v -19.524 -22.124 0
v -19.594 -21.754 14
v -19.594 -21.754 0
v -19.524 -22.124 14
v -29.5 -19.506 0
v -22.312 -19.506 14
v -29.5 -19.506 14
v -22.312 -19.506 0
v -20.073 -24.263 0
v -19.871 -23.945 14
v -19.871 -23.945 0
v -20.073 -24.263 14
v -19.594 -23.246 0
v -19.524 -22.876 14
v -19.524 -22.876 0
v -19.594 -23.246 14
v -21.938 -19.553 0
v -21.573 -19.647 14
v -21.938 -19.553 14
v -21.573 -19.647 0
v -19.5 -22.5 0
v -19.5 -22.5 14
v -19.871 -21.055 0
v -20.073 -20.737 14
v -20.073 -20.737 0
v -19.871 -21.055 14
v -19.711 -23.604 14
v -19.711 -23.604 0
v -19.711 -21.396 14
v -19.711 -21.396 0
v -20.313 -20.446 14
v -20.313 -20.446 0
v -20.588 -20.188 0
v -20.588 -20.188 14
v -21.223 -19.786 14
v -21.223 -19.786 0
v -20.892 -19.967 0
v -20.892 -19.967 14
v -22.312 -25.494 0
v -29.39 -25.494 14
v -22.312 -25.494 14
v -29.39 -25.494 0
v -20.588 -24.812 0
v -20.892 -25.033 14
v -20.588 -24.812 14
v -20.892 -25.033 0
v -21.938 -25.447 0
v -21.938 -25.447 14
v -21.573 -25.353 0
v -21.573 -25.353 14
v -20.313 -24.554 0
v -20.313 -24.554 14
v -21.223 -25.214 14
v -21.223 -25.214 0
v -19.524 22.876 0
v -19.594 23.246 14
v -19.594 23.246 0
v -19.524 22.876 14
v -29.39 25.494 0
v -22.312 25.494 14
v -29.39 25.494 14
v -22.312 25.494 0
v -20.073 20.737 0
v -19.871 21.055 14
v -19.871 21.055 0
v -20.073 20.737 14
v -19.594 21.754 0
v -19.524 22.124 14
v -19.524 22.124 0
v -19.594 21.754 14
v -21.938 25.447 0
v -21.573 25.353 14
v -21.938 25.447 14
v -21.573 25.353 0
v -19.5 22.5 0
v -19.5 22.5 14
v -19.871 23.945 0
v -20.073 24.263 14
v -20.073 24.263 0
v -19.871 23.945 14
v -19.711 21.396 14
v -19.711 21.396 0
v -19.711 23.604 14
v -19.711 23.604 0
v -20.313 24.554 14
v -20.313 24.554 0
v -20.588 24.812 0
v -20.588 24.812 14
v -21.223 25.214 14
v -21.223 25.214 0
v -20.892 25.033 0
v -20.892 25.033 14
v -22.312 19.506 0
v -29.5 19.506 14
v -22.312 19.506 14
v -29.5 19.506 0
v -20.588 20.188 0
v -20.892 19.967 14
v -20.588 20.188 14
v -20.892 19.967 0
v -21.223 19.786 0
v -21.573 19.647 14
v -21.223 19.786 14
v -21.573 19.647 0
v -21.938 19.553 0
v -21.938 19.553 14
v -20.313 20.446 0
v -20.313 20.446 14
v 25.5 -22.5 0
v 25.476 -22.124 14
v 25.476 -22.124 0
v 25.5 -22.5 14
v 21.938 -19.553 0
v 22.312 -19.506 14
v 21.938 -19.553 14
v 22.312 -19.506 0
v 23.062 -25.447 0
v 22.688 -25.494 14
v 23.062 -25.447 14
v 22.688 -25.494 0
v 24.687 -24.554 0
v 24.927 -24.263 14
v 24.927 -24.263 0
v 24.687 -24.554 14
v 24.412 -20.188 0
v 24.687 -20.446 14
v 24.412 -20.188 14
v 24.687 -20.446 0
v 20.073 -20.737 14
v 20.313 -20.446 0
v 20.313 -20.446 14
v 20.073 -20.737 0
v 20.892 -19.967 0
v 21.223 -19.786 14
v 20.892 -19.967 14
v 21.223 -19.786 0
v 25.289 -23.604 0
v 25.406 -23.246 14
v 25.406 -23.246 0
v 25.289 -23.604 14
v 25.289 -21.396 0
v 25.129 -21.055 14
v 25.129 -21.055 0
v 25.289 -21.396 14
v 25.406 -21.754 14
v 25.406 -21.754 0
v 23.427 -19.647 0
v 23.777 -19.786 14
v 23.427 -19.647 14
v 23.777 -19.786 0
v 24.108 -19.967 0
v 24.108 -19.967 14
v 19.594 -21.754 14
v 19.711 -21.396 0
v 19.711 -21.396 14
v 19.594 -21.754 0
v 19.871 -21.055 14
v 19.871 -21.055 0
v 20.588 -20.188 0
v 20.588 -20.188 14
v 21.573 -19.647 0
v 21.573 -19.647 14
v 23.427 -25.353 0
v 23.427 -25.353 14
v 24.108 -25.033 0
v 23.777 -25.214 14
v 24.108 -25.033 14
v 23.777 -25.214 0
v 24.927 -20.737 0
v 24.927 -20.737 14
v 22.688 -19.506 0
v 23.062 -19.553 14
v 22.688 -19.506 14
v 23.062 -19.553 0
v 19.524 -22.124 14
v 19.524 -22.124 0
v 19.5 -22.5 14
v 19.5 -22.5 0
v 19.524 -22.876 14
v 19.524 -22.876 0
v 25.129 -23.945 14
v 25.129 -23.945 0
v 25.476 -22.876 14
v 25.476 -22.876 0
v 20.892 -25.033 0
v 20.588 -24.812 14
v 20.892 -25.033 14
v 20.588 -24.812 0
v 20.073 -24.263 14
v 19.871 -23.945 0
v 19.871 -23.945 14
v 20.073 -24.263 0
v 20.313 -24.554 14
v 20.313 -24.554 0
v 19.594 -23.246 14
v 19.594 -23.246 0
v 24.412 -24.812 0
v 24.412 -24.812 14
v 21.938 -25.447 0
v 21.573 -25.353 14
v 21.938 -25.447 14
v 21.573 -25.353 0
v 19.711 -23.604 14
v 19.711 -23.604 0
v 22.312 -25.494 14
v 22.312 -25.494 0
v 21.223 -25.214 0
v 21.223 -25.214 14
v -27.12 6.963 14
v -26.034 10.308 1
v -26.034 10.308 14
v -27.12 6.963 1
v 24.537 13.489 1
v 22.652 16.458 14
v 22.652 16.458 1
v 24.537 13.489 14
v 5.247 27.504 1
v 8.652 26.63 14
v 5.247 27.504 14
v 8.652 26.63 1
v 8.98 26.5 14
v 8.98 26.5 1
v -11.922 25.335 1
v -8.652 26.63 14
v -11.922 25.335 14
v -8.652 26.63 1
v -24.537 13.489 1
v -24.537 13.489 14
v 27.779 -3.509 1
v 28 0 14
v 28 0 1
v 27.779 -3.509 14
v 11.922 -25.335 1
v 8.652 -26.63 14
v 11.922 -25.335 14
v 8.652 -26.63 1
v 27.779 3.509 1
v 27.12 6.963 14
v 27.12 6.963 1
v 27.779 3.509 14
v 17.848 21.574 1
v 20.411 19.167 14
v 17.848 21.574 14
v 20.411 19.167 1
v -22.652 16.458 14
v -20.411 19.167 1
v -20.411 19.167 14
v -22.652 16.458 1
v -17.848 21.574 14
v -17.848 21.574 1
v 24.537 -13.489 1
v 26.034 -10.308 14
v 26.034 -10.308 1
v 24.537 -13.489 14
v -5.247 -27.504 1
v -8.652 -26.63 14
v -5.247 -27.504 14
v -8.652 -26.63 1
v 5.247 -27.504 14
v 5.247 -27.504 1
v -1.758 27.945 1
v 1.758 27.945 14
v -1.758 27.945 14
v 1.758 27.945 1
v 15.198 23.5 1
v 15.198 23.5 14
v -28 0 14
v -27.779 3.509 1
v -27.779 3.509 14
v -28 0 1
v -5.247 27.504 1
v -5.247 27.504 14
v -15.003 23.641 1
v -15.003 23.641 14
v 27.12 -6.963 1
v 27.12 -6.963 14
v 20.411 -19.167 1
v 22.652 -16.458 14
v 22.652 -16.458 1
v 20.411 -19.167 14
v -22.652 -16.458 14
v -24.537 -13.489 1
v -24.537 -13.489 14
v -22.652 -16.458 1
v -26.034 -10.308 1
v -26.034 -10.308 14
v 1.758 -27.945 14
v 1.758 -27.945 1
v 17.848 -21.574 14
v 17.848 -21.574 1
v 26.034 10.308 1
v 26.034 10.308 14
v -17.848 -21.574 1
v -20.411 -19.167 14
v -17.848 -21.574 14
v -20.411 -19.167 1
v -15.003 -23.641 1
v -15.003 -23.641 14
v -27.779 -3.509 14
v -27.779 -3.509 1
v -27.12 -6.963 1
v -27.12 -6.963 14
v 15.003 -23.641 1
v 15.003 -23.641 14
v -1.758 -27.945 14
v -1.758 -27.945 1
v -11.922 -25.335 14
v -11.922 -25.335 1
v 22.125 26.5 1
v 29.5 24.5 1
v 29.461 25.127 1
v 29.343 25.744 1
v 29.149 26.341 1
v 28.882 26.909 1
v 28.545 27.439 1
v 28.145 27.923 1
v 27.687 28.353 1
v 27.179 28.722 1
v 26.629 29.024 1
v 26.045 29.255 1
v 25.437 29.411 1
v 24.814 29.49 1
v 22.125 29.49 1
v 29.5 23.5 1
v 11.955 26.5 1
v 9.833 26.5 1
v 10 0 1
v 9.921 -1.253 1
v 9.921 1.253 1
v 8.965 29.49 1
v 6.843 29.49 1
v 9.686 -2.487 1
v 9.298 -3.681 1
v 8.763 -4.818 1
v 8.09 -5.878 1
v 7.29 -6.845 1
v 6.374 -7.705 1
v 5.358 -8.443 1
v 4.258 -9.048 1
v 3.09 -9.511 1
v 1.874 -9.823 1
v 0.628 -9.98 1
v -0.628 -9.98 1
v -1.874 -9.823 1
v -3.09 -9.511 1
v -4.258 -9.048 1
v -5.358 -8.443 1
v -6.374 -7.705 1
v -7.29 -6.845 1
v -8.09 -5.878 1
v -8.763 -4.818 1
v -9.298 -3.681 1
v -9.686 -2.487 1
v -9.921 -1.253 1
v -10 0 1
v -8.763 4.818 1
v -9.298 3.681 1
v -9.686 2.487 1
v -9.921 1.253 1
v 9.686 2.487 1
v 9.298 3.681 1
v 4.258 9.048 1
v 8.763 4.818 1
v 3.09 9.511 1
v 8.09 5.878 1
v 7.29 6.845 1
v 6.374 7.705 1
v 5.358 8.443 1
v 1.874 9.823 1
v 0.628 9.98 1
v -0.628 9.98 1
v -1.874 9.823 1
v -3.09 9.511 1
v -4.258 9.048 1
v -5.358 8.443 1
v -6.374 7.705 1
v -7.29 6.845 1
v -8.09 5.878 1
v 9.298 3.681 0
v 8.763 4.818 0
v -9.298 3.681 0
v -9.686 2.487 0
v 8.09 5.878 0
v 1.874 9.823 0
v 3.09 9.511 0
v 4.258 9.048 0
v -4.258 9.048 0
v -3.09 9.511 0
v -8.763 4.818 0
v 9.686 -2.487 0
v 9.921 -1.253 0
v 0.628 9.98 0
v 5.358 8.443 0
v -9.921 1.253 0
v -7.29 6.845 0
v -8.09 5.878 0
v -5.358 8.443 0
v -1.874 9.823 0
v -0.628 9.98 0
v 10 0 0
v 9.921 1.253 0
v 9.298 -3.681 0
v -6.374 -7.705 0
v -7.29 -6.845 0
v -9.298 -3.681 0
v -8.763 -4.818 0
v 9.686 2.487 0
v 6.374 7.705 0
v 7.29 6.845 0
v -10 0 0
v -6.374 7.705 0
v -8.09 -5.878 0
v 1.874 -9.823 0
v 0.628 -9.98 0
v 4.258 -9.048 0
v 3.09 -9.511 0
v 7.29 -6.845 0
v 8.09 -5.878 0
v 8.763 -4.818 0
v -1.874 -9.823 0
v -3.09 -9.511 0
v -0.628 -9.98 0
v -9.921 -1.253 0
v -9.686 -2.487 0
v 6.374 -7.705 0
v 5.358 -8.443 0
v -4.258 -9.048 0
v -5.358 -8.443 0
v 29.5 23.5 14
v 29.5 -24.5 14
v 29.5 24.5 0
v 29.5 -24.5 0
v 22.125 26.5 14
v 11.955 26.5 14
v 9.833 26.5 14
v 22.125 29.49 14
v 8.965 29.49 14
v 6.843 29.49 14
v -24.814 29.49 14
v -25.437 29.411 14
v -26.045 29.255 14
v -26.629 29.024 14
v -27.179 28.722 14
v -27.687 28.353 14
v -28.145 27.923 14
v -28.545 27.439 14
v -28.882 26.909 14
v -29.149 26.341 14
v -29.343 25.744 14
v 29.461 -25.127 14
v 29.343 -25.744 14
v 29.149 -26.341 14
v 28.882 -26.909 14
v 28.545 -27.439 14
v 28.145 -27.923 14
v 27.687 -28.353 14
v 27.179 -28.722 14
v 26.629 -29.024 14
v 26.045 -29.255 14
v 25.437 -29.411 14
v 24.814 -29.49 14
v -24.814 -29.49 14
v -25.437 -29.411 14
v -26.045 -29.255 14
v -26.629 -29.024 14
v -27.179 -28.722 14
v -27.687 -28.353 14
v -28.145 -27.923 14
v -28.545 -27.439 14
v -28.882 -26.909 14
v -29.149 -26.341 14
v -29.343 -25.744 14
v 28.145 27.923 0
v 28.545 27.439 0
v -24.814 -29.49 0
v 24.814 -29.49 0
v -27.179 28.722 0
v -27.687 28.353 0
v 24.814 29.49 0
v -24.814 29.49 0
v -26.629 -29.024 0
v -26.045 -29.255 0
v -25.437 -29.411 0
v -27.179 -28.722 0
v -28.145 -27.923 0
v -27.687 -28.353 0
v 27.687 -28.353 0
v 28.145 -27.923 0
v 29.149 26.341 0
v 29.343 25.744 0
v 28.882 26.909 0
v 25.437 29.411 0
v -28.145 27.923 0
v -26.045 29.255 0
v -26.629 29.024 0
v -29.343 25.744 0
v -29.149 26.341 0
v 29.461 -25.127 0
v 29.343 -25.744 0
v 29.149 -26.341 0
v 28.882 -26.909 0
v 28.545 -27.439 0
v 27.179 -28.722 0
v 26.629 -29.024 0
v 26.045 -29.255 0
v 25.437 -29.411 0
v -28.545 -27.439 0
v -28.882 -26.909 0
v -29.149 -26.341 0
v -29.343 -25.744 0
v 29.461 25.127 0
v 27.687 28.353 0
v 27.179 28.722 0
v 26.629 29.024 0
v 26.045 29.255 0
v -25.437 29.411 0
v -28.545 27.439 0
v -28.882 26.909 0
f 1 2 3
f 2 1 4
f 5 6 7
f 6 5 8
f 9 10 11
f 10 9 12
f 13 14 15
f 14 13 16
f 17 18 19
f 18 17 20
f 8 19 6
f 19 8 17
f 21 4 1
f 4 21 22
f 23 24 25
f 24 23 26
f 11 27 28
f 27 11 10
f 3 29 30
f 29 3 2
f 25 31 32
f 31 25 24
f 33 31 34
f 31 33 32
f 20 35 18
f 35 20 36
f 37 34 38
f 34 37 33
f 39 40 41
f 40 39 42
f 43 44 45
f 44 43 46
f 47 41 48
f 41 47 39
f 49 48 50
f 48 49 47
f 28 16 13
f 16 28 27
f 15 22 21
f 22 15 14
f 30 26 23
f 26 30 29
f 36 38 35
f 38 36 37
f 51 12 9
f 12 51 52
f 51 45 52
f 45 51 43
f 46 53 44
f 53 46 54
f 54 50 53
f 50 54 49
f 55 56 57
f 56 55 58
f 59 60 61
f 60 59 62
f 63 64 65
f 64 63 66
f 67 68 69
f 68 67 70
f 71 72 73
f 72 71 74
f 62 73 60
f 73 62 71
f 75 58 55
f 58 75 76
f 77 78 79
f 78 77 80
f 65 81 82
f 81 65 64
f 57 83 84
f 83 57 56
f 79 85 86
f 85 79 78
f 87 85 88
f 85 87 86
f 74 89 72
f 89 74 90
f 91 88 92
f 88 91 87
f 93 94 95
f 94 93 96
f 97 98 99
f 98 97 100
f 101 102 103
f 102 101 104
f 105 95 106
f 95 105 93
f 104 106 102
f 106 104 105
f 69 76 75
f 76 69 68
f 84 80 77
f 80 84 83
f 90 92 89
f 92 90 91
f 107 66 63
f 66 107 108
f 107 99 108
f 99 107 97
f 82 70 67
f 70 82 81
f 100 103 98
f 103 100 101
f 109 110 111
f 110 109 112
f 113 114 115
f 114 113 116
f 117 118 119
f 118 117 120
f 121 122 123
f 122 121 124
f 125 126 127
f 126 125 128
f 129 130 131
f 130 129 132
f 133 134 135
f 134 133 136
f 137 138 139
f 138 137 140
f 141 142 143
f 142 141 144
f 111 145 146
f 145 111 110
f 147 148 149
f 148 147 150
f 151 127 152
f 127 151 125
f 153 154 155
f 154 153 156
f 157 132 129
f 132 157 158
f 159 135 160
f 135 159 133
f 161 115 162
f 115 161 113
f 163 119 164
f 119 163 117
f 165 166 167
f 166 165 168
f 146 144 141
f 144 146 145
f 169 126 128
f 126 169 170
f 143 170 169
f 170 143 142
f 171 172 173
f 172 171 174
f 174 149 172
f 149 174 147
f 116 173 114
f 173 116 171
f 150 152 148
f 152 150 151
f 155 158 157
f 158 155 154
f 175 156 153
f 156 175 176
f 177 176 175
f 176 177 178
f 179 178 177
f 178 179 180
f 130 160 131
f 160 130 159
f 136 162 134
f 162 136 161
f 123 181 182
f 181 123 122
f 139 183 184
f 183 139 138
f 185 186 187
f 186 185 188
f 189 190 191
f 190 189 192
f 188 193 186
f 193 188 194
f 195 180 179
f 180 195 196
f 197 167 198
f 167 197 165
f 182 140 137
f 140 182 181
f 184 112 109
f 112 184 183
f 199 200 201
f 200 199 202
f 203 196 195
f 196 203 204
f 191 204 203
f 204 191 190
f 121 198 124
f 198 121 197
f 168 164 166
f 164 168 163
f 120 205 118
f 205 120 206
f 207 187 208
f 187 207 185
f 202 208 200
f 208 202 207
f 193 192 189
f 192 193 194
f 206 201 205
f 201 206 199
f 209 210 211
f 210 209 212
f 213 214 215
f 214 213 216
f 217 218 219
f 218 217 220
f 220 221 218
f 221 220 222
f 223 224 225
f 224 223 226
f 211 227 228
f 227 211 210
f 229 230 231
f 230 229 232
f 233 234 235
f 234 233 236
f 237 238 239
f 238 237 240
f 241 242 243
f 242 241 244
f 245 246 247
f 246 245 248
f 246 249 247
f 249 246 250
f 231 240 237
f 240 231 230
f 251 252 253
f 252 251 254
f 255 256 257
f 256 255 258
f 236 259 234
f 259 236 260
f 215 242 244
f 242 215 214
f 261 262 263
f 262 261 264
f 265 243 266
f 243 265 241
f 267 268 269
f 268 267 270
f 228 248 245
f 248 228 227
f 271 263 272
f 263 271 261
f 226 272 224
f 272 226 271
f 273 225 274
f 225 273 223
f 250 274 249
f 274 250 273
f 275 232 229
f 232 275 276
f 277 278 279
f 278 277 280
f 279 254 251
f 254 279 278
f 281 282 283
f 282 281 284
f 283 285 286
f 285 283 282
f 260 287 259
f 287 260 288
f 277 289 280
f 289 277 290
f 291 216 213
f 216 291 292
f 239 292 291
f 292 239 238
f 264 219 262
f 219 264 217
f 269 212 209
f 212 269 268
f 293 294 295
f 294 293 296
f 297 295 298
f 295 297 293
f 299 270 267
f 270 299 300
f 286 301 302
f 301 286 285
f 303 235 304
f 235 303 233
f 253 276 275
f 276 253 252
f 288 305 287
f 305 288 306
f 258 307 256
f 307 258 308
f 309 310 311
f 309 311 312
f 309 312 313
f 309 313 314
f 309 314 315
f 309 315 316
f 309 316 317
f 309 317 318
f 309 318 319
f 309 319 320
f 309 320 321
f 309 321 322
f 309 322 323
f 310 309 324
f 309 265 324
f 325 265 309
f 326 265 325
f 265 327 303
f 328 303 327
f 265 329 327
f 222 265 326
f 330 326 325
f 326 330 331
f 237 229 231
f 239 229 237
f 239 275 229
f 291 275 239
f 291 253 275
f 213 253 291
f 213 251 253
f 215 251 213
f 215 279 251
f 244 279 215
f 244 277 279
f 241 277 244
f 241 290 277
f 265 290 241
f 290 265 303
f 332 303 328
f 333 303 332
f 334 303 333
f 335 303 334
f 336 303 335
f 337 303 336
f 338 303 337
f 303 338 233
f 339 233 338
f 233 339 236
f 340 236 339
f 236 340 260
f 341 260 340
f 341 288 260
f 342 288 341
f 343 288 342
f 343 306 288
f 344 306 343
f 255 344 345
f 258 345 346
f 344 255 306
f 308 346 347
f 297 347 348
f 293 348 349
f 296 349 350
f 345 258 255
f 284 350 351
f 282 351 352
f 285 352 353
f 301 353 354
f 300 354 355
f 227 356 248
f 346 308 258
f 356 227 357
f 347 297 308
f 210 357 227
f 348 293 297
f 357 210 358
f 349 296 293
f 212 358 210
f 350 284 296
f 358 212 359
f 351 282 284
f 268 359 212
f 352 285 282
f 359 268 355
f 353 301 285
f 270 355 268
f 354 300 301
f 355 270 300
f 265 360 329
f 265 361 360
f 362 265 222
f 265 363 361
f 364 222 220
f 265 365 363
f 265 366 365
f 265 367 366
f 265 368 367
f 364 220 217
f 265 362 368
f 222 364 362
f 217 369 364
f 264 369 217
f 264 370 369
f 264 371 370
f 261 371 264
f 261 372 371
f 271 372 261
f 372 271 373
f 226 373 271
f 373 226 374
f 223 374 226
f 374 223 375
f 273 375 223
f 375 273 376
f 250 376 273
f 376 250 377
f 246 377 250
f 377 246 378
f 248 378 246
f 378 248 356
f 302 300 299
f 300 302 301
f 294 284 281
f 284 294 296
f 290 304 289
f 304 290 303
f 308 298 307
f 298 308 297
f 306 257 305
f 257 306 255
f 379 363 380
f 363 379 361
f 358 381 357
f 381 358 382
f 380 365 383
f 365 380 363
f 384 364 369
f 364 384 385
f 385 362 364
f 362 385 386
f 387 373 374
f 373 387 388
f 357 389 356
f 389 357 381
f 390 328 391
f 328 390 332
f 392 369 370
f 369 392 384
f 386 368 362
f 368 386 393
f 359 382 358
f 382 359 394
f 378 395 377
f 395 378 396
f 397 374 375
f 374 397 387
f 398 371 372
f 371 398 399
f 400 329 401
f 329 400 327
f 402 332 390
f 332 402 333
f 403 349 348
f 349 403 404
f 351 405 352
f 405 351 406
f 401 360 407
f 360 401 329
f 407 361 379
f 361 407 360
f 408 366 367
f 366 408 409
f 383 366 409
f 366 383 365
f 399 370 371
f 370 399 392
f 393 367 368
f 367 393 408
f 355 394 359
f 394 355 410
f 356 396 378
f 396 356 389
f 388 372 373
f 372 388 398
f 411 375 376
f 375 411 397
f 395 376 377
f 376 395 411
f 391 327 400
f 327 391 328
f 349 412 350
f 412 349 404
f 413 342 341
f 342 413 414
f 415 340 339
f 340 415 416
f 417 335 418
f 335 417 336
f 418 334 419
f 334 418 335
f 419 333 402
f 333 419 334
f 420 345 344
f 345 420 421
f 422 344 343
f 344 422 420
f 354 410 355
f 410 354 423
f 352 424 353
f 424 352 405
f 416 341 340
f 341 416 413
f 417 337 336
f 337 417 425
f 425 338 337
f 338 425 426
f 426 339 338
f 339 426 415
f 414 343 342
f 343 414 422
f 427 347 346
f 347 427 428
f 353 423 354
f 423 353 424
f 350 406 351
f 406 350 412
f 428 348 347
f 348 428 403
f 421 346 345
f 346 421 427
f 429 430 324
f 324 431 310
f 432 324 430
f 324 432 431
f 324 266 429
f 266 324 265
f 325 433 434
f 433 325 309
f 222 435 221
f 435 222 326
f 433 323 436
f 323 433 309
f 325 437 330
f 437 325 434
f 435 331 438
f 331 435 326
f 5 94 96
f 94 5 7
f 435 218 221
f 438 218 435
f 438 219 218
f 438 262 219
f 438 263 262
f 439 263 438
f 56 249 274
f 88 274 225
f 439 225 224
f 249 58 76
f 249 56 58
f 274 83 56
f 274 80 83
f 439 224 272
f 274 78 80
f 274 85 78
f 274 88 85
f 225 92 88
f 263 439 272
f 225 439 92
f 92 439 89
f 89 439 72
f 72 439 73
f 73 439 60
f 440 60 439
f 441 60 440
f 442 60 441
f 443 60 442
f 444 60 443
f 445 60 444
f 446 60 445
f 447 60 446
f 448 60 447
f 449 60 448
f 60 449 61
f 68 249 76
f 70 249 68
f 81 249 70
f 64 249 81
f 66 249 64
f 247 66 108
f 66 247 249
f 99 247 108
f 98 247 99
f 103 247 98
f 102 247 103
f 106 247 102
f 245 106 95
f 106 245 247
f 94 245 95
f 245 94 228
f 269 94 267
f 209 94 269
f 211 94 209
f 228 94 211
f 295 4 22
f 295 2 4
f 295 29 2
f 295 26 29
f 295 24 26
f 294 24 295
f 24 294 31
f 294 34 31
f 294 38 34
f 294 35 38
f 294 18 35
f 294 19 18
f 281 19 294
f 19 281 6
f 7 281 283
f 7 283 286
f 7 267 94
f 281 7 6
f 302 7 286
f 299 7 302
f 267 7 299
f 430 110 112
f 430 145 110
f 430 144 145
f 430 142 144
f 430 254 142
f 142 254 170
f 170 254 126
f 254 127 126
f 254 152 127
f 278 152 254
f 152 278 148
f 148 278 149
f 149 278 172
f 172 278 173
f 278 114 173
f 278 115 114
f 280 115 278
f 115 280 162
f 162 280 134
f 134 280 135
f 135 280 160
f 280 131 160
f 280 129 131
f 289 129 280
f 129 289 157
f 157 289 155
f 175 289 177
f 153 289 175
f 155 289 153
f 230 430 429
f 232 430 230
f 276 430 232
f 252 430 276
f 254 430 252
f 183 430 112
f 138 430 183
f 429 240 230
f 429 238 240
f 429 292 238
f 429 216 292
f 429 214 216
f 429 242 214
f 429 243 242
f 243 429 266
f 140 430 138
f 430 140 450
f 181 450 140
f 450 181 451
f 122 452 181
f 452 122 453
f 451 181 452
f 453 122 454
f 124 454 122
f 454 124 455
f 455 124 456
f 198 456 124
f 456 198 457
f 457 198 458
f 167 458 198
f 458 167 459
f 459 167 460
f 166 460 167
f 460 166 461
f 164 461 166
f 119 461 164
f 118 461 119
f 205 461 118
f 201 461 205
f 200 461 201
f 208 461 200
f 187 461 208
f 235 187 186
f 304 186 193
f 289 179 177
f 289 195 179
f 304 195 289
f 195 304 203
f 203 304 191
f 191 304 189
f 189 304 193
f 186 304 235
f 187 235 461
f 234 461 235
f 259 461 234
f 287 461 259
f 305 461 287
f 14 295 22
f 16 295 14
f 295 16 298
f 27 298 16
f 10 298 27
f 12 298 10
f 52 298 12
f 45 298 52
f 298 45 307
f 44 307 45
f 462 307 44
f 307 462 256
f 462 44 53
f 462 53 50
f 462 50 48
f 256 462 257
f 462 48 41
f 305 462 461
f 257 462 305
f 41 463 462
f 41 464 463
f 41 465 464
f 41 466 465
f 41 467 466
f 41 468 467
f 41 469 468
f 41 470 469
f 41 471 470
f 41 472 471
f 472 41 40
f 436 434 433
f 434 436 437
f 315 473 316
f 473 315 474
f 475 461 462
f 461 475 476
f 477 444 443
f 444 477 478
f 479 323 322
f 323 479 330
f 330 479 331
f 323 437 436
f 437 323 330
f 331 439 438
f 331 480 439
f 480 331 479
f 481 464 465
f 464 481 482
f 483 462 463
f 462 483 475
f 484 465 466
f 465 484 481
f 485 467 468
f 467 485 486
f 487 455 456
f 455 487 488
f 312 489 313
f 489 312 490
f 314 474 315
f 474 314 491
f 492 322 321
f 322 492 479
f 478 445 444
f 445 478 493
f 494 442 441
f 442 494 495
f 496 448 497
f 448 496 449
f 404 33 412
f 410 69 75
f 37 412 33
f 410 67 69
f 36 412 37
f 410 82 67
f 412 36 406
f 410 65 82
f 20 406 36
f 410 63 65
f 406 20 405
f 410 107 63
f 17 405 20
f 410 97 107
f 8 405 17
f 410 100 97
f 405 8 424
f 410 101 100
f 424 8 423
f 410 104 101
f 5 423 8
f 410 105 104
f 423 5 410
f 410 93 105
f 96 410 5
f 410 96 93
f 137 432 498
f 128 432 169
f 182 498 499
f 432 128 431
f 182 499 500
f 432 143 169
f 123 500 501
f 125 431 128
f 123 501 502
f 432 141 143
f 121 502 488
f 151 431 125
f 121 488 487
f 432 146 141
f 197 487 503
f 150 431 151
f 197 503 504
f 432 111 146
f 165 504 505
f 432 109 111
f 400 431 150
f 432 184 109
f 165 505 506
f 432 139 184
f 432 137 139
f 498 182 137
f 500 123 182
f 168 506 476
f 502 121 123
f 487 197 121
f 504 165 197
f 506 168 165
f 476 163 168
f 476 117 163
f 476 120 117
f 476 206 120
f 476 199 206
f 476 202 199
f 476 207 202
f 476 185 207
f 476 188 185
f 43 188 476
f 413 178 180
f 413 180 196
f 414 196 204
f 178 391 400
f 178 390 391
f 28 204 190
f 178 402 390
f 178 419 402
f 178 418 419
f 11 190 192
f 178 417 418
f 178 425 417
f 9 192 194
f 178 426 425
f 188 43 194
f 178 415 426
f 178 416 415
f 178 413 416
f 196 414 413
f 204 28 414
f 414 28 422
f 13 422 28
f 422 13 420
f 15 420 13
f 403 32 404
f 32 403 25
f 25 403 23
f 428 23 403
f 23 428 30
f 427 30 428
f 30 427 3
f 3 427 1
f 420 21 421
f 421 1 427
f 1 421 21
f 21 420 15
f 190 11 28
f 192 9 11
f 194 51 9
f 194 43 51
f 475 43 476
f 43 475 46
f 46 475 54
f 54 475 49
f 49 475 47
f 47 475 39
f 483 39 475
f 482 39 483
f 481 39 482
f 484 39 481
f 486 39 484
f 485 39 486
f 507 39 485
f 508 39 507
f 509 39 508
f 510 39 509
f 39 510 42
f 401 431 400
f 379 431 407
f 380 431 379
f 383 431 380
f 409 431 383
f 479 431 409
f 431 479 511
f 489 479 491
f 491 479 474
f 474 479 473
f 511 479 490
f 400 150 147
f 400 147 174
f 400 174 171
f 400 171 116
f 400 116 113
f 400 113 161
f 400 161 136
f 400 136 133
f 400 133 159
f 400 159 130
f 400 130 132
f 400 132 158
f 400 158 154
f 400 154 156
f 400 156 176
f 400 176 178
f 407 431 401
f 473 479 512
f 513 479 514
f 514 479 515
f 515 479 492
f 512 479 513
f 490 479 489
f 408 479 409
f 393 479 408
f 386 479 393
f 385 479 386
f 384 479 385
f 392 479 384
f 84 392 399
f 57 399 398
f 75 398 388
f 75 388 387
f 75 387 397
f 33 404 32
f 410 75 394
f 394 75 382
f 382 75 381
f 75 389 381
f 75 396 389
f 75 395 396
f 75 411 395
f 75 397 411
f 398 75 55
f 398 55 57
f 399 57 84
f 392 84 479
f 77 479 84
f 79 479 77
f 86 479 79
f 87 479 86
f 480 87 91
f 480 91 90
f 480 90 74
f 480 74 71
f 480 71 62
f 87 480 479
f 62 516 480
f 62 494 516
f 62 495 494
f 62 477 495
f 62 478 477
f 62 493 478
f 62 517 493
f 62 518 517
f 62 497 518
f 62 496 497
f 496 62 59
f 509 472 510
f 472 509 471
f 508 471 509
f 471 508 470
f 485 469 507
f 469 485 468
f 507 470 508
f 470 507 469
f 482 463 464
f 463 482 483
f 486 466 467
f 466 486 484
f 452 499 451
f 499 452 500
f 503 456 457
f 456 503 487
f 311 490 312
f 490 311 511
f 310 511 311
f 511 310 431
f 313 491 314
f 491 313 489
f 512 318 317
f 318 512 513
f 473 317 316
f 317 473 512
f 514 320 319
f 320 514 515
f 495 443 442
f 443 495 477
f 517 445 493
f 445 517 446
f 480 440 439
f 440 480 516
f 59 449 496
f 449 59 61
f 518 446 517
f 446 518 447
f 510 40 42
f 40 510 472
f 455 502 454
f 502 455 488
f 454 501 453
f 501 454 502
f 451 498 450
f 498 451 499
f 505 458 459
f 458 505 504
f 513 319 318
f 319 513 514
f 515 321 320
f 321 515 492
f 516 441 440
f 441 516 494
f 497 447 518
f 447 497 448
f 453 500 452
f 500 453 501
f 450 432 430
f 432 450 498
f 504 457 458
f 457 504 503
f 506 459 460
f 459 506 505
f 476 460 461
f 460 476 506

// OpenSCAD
$fn = 50;


difference() {
	union() {
		translate(v = [0, 0, 0]) {
			rotate(a = [0, 0, 0]) {
				hull() {
					translate(v = [-24.5000000000, 24.5000000000, 0]) {
						rotate(a = [0, 0, 0]) {
							translate(v = [0, 0, 0]) {
								rotate(a = [0, 0, 0]) {
									cylinder(h = 14, r = 5);
								}
							}
						}
					}
					translate(v = [24.5000000000, 24.5000000000, 0]) {
						rotate(a = [0, 0, 0]) {
							translate(v = [0, 0, 0]) {
								rotate(a = [0, 0, 0]) {
									cylinder(h = 14, r = 5);
								}
							}
						}
					}
					translate(v = [-24.5000000000, -24.5000000000, 0]) {
						rotate(a = [0, 0, 0]) {
							translate(v = [0, 0, 0]) {
								rotate(a = [0, 0, 0]) {
									cylinder(h = 14, r = 5);
								}
							}
						}
					}
					translate(v = [24.5000000000, -24.5000000000, 0]) {
						rotate(a = [0, 0, 0]) {
							translate(v = [0, 0, 0]) {
								rotate(a = [0, 0, 0]) {
									cylinder(h = 14, r = 5);
								}
							}
						}
					}
				}
			}
		}
	}
	union() {
		translate(v = [-30.0000000000, -22.5000000000, -125]) {
			rotate(a = [0, 0, 0]) {
				hull() {
					translate(v = [7.5000000000, 0, 0]) {
						rotate(a = [0, 0, 0]) {
							translate(v = [0, 0, 0]) {
								rotate(a = [0, 0, 0]) {
									cylinder(h = 250, r = 3.0000000000);
								}
							}
						}
					}
					translate(v = [-7.5000000000, 0, 0]) {
						rotate(a = [0, 0, 0]) {
							translate(v = [0, 0, 0]) {
								rotate(a = [0, 0, 0]) {
									cylinder(h = 250, r = 3.0000000000);
								}
							}
						}
					}
				}
			}
		}
		translate(v = [-30.0000000000, 22.5000000000, -125]) {
			rotate(a = [0, 0, 0]) {
				hull() {
					translate(v = [7.5000000000, 0, 0]) {
						rotate(a = [0, 0, 0]) {
							translate(v = [0, 0, 0]) {
								rotate(a = [0, 0, 0]) {
									cylinder(h = 250, r = 3.0000000000);
								}
							}
						}
					}
					translate(v = [-7.5000000000, 0, 0]) {
						rotate(a = [0, 0, 0]) {
							translate(v = [0, 0, 0]) {
								rotate(a = [0, 0, 0]) {
									cylinder(h = 250, r = 3.0000000000);
								}
							}
						}
					}
				}
			}
		}
		translate(v = [22.5000000000, -22.5000000000, -125.0000000000]) {
			rotate(a = [0, 0, 0]) {
				cylinder(h = 250, r = 3.0000000000);
			}
		}
		translate(v = [0, 0, 1.0000000000]) {
			rotate(a = [0, 0, 0]) {
				cylinder(h = 16, r = 28.0000000000);
			}
		}
		translate(v = [0, 0, -7.0000000000]) {
			rotate(a = [0, 0, 0]) {
				cylinder(h = 14, r = 10.0000000000);
			}
		}
		translate(v = [0.0000000000, 23.5000000000, 1]) {
			rotate(a = [0, 0, 0]) {
				cube(size = [29.5000000000, 3, 16]);
			}
		}
		translate(v = [22.1250000000, 23.5000000000, 1]) {
			rotate(a = [0, 0, 0]) {
				cube(size = [7.3750000000, 6, 16]);
			}
		}
		translate(v = [6.0833333333, 30.2500000000, 1]) {
			rotate(a = [0, 0, -45]) {
				cube(size = [7.5000000000, 1.5000000000, 16]);
			}
		}
	}
}
